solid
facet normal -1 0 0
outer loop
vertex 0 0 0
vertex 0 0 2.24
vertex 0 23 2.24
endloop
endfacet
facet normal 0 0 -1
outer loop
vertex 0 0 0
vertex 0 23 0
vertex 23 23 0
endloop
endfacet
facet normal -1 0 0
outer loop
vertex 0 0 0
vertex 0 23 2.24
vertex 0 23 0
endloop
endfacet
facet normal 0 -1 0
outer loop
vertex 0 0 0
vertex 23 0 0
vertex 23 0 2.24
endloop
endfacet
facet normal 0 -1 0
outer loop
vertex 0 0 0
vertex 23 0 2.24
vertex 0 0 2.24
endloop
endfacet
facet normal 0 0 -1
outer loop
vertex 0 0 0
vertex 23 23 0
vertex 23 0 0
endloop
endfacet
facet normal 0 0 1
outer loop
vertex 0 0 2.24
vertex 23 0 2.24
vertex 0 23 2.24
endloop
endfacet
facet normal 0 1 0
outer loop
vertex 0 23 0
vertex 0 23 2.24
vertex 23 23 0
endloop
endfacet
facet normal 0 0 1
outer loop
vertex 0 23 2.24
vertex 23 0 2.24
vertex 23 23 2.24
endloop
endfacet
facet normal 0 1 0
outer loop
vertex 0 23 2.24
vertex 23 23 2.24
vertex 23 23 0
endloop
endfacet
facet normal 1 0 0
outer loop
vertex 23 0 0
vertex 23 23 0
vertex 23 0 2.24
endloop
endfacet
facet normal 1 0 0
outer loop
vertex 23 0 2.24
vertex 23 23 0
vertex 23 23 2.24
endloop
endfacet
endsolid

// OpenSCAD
/* Warning, this is a very basic generator with a lot of approximation 
input data : [BGA, 9KC, 23x23x2.24mm, 480, , A, C04-25139A]
generated by com.zoubworld.electronics.cad.model3d.Basic
Date : Sun Feb 15 10:50:49 CET 2026
*/

//body
color("black")
translate([0,0,0])
cube([23.0,23.0,2.24], center=false);
